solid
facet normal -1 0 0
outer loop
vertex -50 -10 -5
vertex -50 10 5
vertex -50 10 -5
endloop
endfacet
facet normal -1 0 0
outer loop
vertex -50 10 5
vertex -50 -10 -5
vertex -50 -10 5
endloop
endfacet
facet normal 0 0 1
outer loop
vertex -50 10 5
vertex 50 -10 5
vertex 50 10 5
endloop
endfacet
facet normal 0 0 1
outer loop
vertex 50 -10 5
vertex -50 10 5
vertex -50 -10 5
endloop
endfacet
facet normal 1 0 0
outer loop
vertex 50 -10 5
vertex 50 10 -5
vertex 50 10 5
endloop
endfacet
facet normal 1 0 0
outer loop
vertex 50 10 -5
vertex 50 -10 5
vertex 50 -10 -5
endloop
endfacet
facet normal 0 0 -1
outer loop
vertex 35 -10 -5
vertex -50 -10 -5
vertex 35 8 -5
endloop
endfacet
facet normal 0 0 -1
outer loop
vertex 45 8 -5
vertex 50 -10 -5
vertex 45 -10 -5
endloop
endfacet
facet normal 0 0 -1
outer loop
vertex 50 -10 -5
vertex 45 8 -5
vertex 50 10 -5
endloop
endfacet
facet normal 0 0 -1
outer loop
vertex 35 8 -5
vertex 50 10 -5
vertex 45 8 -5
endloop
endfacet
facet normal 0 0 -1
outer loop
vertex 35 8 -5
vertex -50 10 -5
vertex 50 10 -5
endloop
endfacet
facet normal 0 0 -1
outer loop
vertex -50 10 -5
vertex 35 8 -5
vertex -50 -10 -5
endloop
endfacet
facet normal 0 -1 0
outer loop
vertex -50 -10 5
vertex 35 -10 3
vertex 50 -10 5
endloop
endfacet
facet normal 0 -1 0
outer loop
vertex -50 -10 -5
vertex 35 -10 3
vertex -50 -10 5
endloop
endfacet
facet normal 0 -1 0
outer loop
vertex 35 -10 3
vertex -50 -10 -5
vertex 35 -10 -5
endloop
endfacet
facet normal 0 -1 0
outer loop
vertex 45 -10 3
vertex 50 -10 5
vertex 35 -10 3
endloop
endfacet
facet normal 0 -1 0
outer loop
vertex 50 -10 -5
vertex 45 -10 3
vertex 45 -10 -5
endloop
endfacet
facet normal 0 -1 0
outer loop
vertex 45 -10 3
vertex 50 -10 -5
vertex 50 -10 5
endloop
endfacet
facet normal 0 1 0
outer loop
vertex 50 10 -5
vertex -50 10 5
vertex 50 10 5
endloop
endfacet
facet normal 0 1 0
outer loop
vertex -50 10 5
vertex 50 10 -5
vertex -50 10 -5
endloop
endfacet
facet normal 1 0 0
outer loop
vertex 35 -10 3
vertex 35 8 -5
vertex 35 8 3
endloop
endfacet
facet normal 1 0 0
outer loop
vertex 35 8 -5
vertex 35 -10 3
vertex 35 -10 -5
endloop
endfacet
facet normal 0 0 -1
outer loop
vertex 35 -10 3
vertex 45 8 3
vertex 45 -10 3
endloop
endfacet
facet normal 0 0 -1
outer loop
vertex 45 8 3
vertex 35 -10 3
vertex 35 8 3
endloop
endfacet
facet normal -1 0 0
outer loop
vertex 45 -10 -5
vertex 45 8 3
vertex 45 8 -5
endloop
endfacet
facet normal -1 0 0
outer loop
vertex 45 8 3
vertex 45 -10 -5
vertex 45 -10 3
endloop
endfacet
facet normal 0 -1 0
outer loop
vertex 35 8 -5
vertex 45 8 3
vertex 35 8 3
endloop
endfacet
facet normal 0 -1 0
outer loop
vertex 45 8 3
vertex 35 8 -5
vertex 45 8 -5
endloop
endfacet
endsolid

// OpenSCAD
difference()
{
translate([0,0,0]) cube([100, 20, 10], center=true);
translate([40,-3,-1]) cube([10, 22, 8], center=true);
}
